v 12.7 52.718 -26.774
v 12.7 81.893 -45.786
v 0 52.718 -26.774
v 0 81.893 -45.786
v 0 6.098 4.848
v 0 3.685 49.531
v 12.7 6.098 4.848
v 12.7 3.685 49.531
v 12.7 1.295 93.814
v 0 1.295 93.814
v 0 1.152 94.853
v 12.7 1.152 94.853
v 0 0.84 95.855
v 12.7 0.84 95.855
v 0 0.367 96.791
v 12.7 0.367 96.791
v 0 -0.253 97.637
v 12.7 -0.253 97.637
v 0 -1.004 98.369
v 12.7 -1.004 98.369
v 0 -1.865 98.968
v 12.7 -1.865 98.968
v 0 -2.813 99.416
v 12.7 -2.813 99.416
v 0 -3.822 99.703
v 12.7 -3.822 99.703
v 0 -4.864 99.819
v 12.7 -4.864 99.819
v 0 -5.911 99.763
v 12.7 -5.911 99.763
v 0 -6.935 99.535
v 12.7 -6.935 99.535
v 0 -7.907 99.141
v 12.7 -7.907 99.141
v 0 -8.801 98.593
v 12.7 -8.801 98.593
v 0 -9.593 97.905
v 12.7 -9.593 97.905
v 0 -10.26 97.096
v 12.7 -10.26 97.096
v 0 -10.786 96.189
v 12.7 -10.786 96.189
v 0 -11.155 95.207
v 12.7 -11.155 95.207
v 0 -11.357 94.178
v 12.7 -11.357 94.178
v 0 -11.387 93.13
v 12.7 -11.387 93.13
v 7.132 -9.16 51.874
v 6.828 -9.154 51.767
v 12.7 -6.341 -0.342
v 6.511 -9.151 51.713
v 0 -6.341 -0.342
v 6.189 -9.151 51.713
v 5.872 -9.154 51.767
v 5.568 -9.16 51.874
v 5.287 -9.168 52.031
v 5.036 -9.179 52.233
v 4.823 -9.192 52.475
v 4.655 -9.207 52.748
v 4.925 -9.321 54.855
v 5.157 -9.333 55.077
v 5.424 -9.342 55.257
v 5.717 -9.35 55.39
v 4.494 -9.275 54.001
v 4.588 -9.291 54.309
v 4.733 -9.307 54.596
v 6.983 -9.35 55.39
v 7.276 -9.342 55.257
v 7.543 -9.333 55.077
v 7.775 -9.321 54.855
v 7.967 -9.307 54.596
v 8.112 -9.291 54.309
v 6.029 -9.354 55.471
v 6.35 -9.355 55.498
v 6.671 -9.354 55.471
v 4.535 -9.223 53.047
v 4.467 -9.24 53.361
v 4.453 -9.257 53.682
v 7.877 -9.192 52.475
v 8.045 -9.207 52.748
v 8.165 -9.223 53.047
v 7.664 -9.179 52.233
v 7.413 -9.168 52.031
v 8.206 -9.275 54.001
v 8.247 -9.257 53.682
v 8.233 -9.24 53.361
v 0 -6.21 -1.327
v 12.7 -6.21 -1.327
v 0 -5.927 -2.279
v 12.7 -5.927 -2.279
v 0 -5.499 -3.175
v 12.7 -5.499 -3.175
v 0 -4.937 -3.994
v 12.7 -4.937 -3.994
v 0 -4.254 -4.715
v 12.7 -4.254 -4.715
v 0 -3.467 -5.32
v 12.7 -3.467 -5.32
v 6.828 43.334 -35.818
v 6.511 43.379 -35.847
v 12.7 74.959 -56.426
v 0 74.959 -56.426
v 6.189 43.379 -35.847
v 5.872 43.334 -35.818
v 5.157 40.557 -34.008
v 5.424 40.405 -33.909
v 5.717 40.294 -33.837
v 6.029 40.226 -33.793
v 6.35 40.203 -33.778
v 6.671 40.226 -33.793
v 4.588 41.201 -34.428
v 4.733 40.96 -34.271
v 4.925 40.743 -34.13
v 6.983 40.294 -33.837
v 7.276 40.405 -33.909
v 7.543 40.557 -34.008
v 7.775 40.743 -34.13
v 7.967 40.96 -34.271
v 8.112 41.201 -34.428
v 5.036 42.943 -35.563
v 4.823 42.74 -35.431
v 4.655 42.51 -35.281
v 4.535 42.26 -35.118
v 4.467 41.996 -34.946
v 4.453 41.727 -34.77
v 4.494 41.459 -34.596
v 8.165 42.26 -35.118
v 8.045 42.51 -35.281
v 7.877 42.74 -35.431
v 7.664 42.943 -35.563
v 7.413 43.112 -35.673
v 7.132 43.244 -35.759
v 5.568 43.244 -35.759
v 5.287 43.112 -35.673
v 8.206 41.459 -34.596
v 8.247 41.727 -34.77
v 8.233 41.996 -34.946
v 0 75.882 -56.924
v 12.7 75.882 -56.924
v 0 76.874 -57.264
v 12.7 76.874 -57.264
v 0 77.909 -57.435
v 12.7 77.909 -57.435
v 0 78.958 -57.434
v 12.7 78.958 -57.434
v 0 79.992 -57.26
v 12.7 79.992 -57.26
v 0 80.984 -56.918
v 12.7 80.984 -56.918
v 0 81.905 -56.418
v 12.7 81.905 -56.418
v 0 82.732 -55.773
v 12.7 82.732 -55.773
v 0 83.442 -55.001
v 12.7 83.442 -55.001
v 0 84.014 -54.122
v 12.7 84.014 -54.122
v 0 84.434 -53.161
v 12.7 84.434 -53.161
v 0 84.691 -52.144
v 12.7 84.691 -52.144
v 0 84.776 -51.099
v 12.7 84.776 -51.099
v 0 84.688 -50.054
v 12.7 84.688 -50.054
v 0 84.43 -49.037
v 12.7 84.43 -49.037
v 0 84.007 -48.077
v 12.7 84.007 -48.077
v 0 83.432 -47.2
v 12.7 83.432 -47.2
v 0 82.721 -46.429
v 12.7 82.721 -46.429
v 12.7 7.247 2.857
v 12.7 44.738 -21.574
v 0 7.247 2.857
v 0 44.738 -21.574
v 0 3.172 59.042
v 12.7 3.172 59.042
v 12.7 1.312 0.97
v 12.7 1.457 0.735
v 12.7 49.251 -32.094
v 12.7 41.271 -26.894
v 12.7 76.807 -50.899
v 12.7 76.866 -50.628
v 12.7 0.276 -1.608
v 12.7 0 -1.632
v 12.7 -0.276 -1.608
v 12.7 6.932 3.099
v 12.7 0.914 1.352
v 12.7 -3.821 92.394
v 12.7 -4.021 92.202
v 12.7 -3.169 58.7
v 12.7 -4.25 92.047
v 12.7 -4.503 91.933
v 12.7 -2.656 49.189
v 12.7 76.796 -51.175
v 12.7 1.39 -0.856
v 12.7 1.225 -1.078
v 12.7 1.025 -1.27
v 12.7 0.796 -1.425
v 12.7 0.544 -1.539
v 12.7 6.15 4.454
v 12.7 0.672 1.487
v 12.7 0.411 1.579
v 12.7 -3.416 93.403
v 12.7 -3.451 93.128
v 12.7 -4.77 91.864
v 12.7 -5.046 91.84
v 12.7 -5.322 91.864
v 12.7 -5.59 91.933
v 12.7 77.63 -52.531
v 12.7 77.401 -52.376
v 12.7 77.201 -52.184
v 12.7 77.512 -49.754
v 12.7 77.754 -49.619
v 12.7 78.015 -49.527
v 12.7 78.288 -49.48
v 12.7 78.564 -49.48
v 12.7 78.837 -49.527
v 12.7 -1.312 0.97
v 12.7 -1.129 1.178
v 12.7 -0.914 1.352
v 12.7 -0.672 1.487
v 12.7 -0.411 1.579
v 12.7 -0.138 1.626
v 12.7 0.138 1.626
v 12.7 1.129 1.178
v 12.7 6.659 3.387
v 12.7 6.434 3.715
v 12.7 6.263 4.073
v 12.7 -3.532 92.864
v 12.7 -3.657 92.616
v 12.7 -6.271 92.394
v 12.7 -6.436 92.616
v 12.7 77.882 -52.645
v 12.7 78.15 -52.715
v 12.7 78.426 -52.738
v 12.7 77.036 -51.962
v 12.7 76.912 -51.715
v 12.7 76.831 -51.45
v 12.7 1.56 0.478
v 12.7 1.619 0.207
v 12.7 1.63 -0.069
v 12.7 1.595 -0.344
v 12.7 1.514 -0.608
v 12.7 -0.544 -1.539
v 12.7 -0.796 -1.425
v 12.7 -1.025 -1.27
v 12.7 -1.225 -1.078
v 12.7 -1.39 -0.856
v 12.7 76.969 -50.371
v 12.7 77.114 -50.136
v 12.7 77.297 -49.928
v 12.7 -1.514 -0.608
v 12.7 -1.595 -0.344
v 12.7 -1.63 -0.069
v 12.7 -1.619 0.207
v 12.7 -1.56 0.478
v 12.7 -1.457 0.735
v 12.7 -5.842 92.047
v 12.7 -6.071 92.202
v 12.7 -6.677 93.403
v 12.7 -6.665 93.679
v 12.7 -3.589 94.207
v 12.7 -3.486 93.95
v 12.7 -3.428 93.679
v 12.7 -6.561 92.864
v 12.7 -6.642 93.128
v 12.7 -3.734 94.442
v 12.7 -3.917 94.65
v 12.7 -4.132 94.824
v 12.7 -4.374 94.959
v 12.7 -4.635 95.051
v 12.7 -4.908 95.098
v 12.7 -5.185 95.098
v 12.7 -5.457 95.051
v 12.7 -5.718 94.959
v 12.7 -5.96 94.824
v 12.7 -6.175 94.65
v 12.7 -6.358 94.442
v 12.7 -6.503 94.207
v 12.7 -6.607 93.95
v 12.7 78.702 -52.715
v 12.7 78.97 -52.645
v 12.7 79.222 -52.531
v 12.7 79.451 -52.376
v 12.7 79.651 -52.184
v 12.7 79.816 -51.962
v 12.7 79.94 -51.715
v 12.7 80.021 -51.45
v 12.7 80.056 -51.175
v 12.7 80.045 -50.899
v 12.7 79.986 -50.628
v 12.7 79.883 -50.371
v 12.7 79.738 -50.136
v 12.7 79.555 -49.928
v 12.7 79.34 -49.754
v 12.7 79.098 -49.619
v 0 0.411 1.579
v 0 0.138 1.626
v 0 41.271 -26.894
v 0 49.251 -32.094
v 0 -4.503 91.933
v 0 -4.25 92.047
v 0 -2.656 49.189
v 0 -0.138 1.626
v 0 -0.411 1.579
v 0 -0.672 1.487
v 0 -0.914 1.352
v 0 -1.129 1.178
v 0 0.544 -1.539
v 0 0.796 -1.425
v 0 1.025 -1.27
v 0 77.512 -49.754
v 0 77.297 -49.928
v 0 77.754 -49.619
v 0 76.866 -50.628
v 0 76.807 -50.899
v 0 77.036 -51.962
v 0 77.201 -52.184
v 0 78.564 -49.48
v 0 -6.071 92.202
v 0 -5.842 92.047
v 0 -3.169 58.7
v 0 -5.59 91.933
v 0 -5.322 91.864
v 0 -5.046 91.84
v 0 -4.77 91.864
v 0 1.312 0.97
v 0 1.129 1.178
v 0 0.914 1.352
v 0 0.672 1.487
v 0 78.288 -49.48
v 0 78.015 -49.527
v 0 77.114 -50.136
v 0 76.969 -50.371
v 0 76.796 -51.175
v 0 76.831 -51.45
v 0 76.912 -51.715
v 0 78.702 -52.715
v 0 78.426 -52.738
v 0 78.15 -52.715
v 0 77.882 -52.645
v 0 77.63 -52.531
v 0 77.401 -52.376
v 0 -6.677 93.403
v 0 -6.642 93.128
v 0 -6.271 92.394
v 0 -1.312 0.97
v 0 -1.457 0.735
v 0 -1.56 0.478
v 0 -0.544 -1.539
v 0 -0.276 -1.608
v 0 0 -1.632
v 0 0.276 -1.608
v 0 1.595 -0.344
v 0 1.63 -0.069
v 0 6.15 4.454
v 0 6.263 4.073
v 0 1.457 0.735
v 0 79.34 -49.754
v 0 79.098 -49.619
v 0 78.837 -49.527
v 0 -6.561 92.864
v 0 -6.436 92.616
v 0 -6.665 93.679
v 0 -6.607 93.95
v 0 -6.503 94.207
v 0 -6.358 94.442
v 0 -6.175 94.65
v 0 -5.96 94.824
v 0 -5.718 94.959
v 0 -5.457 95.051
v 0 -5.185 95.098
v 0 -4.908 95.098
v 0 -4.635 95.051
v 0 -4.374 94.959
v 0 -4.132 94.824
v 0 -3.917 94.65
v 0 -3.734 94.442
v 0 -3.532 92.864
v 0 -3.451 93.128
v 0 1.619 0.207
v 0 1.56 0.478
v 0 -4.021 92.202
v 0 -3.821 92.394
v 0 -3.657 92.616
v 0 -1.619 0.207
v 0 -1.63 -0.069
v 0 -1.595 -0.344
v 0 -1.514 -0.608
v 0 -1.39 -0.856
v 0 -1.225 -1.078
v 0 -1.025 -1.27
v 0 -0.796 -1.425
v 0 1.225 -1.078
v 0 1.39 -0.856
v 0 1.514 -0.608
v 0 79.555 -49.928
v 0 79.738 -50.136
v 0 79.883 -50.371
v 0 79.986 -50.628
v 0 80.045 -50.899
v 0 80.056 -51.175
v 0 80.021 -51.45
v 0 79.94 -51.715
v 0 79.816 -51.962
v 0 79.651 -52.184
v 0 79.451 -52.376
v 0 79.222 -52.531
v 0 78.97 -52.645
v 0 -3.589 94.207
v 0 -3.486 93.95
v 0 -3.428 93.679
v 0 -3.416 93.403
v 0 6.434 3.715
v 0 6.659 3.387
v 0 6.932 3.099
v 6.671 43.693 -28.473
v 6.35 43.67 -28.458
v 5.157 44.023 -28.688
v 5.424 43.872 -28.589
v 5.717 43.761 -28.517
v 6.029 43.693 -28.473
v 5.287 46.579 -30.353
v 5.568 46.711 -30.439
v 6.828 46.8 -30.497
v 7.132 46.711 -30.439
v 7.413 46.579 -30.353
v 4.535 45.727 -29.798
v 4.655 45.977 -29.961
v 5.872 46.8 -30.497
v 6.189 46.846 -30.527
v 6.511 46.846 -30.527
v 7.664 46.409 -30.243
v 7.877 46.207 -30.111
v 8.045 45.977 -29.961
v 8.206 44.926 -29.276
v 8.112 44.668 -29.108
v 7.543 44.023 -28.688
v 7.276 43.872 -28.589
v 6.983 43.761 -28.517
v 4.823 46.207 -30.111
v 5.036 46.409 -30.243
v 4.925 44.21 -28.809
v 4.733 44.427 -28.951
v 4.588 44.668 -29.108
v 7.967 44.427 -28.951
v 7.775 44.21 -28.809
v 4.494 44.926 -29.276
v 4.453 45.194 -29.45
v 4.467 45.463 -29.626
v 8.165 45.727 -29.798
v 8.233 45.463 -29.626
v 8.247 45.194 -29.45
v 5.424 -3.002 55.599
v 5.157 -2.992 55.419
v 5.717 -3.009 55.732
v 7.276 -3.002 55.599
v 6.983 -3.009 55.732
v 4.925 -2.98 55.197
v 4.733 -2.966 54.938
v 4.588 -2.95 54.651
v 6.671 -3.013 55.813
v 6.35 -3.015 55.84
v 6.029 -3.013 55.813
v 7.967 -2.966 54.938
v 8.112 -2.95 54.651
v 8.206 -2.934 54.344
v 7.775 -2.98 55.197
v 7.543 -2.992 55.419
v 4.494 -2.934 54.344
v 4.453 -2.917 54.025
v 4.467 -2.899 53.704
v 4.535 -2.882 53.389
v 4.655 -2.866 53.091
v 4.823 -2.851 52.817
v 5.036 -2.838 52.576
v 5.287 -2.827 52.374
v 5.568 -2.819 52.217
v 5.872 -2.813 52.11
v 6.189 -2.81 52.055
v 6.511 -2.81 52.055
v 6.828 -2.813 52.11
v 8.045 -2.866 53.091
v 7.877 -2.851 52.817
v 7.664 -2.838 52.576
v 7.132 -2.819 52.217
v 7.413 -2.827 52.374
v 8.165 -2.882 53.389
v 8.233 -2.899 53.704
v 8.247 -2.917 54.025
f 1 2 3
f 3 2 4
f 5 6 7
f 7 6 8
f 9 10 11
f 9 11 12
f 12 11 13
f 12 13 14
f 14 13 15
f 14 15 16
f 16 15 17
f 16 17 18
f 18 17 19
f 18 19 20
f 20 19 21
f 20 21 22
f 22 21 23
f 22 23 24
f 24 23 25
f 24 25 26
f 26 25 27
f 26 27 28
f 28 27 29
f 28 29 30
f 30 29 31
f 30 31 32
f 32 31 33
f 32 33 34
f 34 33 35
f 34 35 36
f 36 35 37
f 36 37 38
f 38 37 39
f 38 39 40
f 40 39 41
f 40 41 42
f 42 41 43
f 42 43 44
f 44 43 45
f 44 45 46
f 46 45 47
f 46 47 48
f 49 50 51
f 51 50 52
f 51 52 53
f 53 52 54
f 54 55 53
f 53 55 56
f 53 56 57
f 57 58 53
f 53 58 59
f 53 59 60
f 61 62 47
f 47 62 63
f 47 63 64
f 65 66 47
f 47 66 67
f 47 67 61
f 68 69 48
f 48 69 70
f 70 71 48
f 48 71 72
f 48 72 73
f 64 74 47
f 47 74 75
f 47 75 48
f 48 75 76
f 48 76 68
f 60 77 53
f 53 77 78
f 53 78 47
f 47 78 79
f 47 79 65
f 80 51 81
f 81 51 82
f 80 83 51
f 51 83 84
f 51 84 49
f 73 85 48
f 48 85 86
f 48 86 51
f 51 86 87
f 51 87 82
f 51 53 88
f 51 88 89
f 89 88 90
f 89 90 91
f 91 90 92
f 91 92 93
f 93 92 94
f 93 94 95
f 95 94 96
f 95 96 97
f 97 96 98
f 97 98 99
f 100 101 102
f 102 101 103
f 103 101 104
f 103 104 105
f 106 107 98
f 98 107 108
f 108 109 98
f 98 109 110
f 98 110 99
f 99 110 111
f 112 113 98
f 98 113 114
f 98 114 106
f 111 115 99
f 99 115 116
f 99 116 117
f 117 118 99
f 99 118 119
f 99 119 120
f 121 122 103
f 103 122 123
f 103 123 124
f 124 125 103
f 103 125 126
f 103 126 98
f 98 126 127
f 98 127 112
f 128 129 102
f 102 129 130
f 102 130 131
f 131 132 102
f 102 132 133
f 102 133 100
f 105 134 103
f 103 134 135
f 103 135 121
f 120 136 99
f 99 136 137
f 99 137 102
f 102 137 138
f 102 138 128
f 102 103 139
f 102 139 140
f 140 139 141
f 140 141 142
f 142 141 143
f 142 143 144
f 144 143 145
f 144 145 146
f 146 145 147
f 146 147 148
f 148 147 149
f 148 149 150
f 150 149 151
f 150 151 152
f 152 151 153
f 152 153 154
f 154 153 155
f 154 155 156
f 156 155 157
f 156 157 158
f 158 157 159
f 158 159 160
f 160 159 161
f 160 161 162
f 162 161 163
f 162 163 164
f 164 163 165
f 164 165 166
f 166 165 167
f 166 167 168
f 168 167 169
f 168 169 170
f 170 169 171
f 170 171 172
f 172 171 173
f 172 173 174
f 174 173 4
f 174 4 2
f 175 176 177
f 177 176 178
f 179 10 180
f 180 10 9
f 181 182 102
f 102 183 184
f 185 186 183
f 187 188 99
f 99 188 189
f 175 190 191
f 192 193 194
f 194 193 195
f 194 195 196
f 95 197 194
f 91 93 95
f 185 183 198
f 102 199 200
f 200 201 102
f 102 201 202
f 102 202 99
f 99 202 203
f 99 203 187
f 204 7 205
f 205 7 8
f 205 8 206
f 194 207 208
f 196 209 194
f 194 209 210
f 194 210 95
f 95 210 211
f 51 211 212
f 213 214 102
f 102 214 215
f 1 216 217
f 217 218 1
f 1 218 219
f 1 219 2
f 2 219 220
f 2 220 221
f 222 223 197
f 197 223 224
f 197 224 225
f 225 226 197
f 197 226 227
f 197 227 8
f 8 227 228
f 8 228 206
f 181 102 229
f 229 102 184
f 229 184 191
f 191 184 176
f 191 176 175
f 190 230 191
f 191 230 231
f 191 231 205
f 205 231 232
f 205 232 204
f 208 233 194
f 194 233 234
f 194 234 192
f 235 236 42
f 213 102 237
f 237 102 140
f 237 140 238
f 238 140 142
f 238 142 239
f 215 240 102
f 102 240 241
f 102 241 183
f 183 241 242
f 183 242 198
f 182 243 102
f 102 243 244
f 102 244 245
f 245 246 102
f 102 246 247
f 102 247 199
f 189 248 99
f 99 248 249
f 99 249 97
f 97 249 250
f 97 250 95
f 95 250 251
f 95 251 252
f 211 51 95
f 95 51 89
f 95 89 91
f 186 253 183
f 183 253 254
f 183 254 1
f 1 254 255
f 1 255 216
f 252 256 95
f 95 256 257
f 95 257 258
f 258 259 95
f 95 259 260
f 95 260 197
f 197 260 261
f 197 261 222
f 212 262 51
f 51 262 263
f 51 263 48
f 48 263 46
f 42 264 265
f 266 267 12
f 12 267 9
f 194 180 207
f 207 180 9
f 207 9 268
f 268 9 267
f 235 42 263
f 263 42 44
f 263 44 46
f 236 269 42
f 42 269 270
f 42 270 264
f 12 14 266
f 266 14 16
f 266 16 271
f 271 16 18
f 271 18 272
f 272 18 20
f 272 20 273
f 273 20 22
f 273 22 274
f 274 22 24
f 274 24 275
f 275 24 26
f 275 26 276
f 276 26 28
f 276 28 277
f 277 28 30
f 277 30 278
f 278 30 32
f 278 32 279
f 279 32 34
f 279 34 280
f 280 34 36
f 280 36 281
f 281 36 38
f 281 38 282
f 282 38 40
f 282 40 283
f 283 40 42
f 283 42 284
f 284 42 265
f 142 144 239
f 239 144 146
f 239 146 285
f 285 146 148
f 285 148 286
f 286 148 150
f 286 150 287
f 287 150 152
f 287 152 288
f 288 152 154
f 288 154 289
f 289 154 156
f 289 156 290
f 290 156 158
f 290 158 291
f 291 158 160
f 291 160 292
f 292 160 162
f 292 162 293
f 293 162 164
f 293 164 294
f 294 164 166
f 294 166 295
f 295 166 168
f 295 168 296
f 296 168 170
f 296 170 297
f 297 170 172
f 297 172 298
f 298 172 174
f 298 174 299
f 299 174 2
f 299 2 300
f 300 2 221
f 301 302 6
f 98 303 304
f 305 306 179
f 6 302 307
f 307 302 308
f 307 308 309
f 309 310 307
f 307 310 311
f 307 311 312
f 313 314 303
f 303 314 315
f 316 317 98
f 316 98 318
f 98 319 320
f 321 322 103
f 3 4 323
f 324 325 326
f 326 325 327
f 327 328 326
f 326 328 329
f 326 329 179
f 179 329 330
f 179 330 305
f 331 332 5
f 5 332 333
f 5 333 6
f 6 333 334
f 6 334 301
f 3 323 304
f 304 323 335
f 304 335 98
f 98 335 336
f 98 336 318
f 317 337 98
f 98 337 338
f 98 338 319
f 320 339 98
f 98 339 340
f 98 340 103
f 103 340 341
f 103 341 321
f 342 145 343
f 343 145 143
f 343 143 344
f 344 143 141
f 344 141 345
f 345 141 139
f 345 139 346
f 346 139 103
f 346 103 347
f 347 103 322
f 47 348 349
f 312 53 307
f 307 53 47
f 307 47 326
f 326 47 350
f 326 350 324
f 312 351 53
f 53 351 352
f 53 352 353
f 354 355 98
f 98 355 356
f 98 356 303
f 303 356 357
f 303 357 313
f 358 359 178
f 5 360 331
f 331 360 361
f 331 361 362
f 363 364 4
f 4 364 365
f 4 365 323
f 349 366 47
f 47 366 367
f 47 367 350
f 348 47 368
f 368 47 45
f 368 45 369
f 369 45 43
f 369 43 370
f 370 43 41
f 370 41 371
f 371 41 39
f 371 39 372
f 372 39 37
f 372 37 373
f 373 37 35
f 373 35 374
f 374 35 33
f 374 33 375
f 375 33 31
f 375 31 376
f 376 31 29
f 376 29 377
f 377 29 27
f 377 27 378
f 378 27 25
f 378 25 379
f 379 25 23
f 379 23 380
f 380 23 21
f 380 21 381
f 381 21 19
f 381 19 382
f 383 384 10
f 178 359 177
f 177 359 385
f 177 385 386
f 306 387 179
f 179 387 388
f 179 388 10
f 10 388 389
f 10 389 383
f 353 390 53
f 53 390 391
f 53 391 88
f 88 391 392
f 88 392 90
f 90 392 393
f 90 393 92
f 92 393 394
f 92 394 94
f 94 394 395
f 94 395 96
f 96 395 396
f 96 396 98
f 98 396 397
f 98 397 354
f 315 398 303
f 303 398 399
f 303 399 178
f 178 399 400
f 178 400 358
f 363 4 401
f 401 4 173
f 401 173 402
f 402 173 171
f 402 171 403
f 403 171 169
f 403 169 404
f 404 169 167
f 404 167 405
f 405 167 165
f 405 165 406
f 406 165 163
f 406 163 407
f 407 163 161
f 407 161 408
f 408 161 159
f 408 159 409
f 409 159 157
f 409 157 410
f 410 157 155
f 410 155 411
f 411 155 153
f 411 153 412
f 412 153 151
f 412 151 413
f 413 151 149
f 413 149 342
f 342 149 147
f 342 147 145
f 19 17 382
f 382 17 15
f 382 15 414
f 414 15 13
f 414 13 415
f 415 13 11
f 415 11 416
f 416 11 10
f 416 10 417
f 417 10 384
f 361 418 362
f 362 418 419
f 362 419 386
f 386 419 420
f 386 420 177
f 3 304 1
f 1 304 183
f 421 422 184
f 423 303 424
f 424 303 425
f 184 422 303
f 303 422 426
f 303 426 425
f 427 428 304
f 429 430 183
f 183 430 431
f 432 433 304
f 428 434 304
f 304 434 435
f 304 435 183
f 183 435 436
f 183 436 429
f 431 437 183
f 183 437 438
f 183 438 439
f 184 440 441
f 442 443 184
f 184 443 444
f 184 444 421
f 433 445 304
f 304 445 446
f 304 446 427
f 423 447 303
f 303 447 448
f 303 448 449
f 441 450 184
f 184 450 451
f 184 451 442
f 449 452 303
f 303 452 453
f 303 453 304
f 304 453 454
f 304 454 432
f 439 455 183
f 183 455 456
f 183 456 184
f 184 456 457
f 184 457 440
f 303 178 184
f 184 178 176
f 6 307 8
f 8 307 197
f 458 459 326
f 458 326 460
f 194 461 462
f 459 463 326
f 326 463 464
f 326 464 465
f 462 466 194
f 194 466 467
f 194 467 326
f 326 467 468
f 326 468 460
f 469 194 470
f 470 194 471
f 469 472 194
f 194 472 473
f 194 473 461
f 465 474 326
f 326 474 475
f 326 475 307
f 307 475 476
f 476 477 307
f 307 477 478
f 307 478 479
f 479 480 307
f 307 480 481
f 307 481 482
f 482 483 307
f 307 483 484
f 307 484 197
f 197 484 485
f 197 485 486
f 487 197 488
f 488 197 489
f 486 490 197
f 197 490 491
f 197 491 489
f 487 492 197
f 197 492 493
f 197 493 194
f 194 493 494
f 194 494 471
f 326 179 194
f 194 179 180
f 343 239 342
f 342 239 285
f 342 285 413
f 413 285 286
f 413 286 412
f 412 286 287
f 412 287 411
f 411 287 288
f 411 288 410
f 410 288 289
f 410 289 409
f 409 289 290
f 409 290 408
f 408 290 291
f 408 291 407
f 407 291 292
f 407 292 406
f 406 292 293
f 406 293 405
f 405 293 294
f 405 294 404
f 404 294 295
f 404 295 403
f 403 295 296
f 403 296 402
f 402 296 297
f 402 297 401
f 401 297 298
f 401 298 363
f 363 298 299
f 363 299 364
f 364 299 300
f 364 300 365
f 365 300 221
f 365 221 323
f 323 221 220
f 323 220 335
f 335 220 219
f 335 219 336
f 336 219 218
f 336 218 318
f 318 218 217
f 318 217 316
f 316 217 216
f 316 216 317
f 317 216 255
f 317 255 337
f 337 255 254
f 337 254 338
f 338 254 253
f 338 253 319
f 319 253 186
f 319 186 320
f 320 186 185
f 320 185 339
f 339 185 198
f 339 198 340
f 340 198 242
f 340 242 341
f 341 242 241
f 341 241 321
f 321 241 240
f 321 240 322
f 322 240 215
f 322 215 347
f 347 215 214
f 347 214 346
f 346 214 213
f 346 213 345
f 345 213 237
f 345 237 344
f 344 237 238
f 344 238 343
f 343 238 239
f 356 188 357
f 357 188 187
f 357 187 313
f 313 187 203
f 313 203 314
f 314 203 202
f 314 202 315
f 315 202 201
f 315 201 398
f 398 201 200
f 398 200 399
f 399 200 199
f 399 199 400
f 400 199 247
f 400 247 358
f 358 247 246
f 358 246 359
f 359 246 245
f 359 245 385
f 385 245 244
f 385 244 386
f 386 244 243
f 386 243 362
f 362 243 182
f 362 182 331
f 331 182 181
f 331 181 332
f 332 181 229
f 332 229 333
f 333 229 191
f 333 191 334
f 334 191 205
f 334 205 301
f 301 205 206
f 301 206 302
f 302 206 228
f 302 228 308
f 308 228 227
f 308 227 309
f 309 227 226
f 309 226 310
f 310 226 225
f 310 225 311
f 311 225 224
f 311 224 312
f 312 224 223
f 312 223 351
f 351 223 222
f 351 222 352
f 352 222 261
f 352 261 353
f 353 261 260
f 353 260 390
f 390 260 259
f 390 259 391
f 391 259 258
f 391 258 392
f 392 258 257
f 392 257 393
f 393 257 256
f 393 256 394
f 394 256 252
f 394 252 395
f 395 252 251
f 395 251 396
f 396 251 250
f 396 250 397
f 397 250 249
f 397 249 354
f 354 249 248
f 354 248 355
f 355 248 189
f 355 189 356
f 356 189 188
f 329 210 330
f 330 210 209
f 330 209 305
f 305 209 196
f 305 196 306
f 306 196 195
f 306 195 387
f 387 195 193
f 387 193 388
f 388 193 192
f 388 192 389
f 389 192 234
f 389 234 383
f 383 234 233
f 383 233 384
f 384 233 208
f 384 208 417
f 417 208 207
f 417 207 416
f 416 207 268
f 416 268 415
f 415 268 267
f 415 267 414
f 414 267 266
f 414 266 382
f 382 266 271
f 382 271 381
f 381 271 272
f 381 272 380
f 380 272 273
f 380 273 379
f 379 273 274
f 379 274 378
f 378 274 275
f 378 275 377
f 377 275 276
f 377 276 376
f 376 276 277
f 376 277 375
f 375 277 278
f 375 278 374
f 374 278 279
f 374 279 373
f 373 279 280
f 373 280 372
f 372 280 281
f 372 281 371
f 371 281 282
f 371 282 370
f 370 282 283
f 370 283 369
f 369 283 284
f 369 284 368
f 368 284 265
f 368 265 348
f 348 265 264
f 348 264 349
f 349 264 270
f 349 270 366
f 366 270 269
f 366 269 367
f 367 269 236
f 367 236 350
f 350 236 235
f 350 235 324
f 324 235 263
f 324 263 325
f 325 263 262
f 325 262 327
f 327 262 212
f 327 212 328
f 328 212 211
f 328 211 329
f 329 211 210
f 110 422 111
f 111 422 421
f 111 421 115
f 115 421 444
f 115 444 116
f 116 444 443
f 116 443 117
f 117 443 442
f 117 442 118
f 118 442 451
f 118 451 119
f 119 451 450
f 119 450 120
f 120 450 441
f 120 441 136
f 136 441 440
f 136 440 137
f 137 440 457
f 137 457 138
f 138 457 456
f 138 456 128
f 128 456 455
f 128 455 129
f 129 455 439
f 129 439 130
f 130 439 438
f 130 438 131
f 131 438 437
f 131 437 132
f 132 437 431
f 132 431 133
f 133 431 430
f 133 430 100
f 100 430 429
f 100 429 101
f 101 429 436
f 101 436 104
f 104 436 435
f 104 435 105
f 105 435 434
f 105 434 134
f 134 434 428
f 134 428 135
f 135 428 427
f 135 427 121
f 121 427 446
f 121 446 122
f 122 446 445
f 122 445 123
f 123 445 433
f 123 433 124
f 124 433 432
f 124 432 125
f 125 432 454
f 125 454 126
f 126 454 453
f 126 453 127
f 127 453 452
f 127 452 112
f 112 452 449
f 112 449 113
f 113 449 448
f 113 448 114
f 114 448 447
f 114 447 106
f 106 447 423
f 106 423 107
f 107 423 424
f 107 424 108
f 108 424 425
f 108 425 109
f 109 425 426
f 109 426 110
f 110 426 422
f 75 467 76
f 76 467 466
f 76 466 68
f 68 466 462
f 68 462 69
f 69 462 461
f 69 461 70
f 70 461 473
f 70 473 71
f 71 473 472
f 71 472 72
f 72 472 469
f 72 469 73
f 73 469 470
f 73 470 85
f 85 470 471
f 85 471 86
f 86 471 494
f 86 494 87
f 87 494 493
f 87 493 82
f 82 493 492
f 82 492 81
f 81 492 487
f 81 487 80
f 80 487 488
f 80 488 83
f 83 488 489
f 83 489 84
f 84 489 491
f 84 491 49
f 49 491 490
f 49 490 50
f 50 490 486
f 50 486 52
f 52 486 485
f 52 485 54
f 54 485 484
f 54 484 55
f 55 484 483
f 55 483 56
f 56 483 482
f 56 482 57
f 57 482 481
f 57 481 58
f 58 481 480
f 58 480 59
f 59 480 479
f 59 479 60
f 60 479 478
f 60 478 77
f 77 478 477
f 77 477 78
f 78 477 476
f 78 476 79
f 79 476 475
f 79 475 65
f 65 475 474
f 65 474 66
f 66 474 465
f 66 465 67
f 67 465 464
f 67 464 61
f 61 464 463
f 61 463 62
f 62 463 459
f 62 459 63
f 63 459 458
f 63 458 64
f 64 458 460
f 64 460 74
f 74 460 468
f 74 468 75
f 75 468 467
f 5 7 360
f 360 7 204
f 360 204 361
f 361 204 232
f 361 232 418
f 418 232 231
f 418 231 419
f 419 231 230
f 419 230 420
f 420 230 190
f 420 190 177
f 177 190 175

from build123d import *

# Parameters (mm, degrees)
BOSS_EXTRUDE1_DEPTH        = 12.7
CUT_EXTRUDE1_DEPTH         = 132.57770374
AXEL_HOLES_D               = 3.2639
MOUNTING_HOLES_D           = 3.7973
MOUNTING_HOLES_ON_FACE_2_D = 3.7973
FILLET1_R                  = 2.54


with BuildPart() as part:
    # Sketch1 → Boss-Extrude1 (new body)
    with BuildSketch(Plane(origin=(0, 0, 0), x_dir=(0, 0, -1), z_dir=(1, 0, 0))):
        with BuildLine():
            Line((-93.814317406, 1.29451642), (-3.560533752, 6.167025361))
            Line((-3.560533752, 6.167025361), (45.786074597, 81.892840322))
            ThreePointArc((45.786074597, 81.892840322), (54.573019473, 83.746107639), (56.42628679, 74.959162763))
            Line((56.42628679, 74.959162763), (5.320106096, -3.46683878))
            ThreePointArc((5.320106096, -3.46683878), (3.175, -5.499261314), (0.342317406, -6.34076642))
            Line((0.342317406, -6.34076642), (-93.129682594, -11.38701642))
            ThreePointArc((-93.129682594, -11.38701642), (-99.81276642, -5.388567406), (-93.814317406, 1.29451642))
        make_face()
    extrude(amount=BOSS_EXTRUDE1_DEPTH)

    # Sketch2 → Cut-Extrude1 (cut, through all)
    with BuildSketch(Plane(origin=(12.7, 0, 0), x_dir=(0, 0, -1), z_dir=(1, 0, 0))):
        Polygon((-59.042239928, 3.171748061), (-58.699922522, -3.169018359), (-49.188772892, -2.65554225), (-49.531090298, 3.68522417), align=None)
        Polygon((21.574047399, 44.73779456), (26.894153496, 41.270955781), (32.094411665, 49.251114925), (26.774305568, 52.717953705), align=None)
    extrude(amount=-CUT_EXTRUDE1_DEPTH, mode=Mode.SUBTRACT)

    # Axel Holes (through all)
    with Locations(Plane(origin=(12.7, -5.04625, 93.472), x_dir=(0, 0, 1), z_dir=(1, 0, 0))):
        with Locations((0, 0), (-93.472, -5.04625), (-144.578180694, -83.472251543)):
            Hole(AXEL_HOLES_D / 2)

    # Mounting Holes (through all)
    with Locations(Plane(origin=(6.35, -2.912280304, 53.944347707), x_dir=(0, -0.053908252869, 0.998545892923), z_dir=(0, 0.998545892923, 0.053908252869))):
        with Locations((0, 0)):
            Hole(MOUNTING_HOLES_D / 2)

    # Mounting Holes on face 2 (through all)
    with Locations(Plane(origin=(6.35, 45.261035353, -29.49428258), x_dir=(0, 0.837811925843, -0.545958951676), z_dir=(0, 0.545958951676, 0.837811925843))):
        with Locations((0, 0)):
            Hole(MOUNTING_HOLES_ON_FACE_2_D / 2)

    # Fillet1
    fillet1_edges = [part.edges().sort_by_distance(p)[0] for p in [
        (6.35, 6.167025361, 3.560533752),
    ]]
    fillet(fillet1_edges, radius=FILLET1_R)


solid = part.part
